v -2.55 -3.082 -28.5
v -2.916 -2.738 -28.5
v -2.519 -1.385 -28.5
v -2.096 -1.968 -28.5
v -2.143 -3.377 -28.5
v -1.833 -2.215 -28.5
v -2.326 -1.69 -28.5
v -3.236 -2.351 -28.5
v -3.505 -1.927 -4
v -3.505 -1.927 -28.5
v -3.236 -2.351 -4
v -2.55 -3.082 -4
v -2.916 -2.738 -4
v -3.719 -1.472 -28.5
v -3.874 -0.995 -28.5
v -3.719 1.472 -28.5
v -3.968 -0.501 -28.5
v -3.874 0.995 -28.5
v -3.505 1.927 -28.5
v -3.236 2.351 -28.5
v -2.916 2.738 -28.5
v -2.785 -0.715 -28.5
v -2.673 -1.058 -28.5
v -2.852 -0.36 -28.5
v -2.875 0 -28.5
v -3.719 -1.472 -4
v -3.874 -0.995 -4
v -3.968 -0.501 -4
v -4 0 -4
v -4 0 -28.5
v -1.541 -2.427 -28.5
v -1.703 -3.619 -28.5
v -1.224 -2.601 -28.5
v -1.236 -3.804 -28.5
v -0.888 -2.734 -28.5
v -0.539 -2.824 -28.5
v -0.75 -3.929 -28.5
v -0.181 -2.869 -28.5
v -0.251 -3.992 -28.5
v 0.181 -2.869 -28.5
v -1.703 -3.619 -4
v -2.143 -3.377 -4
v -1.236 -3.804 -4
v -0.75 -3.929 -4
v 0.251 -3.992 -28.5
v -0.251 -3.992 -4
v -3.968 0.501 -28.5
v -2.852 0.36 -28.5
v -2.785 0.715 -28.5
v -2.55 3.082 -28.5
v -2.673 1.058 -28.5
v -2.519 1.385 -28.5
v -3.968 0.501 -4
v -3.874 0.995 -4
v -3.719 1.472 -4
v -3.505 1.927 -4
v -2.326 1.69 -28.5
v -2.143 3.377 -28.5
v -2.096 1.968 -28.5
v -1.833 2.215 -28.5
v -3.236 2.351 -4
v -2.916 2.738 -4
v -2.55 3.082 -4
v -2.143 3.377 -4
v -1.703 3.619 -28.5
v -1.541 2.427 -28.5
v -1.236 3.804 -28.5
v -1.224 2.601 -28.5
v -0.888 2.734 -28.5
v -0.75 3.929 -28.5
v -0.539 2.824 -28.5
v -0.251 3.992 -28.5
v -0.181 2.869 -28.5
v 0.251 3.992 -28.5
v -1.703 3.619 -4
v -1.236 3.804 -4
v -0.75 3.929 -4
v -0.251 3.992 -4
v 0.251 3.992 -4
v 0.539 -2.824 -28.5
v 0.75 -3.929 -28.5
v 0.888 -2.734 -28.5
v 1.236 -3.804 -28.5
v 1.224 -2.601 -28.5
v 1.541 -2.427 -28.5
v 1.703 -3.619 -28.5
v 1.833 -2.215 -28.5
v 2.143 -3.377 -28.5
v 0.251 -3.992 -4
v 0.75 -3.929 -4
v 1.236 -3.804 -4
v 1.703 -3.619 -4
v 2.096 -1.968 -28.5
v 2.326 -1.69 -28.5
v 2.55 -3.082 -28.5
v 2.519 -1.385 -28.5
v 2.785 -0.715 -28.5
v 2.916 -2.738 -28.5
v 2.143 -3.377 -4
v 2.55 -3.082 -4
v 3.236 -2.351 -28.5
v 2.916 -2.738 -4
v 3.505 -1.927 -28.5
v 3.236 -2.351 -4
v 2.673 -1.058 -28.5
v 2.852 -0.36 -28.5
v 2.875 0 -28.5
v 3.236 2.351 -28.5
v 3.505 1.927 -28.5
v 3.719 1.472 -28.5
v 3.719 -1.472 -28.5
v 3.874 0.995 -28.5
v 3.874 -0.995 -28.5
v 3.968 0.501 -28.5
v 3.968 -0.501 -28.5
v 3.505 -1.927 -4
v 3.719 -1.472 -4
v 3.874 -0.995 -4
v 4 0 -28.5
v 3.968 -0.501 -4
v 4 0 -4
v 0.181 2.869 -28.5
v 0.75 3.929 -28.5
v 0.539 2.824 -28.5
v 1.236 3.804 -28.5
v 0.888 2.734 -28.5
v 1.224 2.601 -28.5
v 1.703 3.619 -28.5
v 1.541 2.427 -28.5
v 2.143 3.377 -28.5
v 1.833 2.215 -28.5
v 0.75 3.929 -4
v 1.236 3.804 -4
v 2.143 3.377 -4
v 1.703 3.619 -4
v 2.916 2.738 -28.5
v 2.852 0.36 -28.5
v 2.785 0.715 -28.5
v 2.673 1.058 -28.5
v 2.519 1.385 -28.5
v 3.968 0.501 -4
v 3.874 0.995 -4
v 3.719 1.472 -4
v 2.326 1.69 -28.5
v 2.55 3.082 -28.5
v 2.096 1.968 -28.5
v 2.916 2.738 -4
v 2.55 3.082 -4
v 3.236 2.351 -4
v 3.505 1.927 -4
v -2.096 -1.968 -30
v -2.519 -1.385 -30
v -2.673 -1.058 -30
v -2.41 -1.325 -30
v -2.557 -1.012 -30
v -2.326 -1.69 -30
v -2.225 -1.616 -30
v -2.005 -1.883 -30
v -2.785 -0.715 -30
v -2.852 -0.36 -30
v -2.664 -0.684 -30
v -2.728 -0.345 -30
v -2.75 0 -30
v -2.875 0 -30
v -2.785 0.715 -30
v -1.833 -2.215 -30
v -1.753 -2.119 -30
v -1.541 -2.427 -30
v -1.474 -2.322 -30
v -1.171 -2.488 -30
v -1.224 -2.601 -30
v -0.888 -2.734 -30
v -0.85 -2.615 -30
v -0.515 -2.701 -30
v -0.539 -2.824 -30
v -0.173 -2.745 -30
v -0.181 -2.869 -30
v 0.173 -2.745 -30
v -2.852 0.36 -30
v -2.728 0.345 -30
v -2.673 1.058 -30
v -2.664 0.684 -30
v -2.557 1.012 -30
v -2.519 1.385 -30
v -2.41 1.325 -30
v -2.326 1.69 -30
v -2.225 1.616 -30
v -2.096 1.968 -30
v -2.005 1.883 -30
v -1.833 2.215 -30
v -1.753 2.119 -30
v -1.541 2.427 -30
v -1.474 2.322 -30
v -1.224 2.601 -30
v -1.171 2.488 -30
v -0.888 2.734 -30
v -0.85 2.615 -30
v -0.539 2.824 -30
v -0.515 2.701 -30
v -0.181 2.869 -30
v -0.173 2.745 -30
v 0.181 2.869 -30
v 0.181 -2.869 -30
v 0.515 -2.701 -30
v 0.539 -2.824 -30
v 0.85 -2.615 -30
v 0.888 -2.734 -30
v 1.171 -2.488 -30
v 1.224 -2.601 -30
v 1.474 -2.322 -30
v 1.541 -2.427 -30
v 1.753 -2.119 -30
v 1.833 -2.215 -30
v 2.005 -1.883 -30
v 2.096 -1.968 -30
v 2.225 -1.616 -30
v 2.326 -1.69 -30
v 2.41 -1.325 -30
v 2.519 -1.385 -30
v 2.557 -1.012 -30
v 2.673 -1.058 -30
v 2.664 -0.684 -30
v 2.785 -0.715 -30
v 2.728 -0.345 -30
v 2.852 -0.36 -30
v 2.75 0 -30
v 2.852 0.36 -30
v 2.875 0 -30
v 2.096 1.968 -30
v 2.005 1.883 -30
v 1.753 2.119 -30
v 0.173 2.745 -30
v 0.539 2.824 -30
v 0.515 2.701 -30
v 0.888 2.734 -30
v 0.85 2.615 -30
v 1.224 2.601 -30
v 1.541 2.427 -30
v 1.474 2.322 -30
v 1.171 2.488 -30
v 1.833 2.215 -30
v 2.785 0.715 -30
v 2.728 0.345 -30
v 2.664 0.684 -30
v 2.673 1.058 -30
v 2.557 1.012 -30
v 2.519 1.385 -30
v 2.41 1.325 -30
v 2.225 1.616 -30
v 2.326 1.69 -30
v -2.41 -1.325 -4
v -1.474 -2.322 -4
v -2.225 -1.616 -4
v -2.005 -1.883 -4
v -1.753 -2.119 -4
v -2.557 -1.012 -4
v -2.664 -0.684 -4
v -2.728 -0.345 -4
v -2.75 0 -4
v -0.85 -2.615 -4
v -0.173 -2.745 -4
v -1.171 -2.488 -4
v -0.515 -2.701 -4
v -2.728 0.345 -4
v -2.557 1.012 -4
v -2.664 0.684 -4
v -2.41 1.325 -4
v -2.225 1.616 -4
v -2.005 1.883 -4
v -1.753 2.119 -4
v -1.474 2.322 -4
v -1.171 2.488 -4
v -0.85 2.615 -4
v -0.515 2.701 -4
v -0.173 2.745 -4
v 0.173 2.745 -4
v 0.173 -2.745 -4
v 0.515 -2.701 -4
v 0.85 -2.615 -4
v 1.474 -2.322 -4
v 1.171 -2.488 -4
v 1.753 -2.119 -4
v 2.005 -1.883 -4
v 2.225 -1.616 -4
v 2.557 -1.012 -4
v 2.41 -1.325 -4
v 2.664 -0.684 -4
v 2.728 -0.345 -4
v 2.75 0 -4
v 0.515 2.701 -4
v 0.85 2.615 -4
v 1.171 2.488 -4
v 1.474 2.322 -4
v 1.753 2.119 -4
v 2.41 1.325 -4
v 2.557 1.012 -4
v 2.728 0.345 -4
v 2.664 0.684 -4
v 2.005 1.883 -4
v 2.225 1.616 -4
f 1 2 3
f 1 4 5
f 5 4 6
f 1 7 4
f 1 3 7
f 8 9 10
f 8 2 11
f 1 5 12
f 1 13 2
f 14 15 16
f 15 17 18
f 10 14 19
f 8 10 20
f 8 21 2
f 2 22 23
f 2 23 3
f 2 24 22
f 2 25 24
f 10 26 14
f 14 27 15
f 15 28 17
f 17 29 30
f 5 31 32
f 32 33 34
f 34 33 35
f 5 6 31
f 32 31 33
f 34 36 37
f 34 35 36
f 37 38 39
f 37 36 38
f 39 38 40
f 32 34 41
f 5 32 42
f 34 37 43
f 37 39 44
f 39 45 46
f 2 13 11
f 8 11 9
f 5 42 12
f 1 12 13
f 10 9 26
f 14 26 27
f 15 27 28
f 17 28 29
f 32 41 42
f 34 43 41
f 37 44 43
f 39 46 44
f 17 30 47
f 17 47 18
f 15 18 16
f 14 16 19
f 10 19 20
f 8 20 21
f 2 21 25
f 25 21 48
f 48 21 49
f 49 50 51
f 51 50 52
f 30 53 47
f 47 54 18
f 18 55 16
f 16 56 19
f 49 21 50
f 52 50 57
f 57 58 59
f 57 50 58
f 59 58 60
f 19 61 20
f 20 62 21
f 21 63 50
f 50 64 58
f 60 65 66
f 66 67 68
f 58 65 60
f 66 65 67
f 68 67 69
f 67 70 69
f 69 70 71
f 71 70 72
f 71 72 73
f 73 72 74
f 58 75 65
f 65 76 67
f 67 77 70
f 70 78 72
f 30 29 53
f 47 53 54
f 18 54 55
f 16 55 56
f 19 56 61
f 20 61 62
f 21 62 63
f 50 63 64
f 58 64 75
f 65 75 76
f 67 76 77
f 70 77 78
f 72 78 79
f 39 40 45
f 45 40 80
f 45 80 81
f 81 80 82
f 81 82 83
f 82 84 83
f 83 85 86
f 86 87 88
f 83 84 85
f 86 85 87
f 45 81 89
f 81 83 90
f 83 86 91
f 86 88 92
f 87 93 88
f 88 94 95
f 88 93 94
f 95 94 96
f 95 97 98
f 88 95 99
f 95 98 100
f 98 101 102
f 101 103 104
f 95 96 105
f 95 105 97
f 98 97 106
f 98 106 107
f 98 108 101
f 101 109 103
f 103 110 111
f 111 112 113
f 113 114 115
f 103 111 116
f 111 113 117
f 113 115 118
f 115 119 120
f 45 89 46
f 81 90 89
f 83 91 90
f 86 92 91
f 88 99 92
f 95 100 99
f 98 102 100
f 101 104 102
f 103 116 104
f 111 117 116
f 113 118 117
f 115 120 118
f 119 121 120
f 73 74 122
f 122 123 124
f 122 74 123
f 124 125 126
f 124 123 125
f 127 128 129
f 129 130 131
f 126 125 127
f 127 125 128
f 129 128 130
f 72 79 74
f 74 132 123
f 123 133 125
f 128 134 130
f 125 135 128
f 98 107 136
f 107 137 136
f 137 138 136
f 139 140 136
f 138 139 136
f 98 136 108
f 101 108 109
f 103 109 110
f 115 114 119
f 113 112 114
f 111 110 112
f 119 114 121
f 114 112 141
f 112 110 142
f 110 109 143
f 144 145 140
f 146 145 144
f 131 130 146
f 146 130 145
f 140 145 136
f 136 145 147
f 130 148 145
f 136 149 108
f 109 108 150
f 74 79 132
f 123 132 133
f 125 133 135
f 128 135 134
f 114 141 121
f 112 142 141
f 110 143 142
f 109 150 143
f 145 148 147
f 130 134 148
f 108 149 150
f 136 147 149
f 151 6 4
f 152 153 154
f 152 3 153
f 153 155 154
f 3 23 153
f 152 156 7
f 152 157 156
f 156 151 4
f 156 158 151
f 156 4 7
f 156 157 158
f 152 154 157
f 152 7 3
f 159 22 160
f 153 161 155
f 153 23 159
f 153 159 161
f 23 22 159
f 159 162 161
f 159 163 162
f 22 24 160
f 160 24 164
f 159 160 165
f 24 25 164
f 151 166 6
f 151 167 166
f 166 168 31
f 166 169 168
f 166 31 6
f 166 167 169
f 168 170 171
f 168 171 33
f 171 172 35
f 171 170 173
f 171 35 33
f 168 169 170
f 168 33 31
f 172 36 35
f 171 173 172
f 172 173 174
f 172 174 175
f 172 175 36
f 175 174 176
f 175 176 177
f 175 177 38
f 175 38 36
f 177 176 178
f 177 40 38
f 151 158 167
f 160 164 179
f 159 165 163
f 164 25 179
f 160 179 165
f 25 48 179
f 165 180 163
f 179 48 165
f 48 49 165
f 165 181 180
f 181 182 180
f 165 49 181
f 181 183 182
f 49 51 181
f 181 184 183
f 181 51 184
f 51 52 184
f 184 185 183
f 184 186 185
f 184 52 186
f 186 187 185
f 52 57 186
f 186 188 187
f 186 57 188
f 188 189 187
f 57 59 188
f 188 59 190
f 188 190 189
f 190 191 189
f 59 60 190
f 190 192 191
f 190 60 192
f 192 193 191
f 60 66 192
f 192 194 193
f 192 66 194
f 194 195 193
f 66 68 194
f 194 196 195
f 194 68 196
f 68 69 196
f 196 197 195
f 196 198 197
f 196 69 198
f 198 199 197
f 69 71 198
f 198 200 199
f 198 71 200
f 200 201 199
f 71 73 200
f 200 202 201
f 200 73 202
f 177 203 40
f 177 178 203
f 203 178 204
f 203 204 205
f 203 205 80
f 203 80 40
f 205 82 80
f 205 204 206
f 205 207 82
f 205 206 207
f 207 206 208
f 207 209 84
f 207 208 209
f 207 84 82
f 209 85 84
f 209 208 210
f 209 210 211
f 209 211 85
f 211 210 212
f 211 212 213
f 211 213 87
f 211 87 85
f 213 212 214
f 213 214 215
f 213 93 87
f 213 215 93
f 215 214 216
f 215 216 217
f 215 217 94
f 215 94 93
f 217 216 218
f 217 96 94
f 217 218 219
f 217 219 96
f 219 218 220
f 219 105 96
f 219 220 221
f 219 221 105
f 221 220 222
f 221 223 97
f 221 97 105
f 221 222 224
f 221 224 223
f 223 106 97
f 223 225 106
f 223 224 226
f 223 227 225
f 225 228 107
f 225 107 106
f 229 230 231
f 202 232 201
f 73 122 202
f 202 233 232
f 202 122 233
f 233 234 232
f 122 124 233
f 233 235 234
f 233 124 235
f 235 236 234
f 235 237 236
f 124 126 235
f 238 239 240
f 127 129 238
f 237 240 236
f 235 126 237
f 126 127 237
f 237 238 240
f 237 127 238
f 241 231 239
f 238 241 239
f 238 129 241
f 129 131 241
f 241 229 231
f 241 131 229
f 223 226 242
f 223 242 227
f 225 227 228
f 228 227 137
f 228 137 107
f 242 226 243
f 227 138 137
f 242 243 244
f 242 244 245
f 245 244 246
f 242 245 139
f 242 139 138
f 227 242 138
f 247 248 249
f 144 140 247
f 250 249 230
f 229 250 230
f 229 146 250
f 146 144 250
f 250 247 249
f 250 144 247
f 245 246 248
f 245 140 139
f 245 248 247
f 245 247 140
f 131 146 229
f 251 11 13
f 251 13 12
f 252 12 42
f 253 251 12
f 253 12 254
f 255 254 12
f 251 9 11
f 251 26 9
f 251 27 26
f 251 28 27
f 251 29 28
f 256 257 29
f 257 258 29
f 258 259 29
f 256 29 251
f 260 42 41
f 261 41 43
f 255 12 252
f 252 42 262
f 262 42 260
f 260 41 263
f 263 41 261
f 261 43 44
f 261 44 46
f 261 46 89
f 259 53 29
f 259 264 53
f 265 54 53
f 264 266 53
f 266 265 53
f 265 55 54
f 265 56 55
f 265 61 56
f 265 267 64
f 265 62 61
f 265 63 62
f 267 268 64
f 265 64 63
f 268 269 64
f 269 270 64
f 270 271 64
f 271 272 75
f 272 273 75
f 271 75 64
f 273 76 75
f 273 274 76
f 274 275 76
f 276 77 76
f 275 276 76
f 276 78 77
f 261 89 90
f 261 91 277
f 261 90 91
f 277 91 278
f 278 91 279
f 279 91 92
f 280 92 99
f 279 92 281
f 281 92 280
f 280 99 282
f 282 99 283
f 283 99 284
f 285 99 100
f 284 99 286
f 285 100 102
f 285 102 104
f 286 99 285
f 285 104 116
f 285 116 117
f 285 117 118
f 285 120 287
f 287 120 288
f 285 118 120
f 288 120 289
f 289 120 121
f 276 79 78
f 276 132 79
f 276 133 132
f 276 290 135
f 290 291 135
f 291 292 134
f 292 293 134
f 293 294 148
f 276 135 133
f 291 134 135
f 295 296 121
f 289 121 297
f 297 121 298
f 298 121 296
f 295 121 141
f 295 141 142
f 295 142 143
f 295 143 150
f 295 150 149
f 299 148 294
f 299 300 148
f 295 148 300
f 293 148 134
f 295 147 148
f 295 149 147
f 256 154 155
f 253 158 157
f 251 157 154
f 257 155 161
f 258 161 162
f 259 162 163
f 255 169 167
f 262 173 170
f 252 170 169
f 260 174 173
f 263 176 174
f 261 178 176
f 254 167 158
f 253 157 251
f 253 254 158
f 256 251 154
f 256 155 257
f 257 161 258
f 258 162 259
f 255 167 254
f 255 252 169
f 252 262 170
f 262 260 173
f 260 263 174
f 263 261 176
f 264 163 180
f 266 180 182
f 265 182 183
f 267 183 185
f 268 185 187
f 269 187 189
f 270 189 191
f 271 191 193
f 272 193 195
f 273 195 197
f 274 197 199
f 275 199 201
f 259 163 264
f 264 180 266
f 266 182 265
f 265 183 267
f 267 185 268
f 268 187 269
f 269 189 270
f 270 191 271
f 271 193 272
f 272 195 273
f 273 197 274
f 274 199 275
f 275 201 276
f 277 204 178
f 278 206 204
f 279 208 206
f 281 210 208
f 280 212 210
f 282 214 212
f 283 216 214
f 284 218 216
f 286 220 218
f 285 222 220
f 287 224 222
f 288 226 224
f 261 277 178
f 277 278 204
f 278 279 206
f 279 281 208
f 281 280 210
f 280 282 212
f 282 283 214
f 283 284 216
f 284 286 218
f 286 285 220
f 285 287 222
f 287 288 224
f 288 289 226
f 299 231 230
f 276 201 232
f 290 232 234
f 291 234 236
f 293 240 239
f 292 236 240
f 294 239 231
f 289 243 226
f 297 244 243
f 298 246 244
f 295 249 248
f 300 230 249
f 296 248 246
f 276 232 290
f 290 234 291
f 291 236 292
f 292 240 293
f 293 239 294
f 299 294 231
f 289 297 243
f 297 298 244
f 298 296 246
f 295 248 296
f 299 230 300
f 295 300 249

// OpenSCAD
$fn = 50;

difference() {
	union() {
		translate(v = [0, 0, -28.5]) {
			cylinder(h = 28.5, r = 4.0);
		}
		#translate(v = [0, 0, -30.0]) {
			cylinder(h = 30, r = 2.875);
		}
	}
	union() {
		translate(v = [0, 0, 0]) {
			rotate(a = [0, 0, 0]) {
				difference() {
					union() {
						translate(v = [0, 0, -4]) {
							linear_extrude(height = 4) {
								polygon(points = [[4.8468, 0.0], [2.4234000000000004, 4.197451927062417], [-2.423399999999999, 4.197451927062417], [-4.8468, 5.935618106107392e-16], [-2.423400000000002, -4.197451927062416], [2.423399999999997, -4.197451927062419]]);
							}
						}
					}
					union();
				}
			}
		}
		#translate(v = [0, 0, -100.0]) {
			cylinder(h = 200, r = 2.75);
		}
	}
}
